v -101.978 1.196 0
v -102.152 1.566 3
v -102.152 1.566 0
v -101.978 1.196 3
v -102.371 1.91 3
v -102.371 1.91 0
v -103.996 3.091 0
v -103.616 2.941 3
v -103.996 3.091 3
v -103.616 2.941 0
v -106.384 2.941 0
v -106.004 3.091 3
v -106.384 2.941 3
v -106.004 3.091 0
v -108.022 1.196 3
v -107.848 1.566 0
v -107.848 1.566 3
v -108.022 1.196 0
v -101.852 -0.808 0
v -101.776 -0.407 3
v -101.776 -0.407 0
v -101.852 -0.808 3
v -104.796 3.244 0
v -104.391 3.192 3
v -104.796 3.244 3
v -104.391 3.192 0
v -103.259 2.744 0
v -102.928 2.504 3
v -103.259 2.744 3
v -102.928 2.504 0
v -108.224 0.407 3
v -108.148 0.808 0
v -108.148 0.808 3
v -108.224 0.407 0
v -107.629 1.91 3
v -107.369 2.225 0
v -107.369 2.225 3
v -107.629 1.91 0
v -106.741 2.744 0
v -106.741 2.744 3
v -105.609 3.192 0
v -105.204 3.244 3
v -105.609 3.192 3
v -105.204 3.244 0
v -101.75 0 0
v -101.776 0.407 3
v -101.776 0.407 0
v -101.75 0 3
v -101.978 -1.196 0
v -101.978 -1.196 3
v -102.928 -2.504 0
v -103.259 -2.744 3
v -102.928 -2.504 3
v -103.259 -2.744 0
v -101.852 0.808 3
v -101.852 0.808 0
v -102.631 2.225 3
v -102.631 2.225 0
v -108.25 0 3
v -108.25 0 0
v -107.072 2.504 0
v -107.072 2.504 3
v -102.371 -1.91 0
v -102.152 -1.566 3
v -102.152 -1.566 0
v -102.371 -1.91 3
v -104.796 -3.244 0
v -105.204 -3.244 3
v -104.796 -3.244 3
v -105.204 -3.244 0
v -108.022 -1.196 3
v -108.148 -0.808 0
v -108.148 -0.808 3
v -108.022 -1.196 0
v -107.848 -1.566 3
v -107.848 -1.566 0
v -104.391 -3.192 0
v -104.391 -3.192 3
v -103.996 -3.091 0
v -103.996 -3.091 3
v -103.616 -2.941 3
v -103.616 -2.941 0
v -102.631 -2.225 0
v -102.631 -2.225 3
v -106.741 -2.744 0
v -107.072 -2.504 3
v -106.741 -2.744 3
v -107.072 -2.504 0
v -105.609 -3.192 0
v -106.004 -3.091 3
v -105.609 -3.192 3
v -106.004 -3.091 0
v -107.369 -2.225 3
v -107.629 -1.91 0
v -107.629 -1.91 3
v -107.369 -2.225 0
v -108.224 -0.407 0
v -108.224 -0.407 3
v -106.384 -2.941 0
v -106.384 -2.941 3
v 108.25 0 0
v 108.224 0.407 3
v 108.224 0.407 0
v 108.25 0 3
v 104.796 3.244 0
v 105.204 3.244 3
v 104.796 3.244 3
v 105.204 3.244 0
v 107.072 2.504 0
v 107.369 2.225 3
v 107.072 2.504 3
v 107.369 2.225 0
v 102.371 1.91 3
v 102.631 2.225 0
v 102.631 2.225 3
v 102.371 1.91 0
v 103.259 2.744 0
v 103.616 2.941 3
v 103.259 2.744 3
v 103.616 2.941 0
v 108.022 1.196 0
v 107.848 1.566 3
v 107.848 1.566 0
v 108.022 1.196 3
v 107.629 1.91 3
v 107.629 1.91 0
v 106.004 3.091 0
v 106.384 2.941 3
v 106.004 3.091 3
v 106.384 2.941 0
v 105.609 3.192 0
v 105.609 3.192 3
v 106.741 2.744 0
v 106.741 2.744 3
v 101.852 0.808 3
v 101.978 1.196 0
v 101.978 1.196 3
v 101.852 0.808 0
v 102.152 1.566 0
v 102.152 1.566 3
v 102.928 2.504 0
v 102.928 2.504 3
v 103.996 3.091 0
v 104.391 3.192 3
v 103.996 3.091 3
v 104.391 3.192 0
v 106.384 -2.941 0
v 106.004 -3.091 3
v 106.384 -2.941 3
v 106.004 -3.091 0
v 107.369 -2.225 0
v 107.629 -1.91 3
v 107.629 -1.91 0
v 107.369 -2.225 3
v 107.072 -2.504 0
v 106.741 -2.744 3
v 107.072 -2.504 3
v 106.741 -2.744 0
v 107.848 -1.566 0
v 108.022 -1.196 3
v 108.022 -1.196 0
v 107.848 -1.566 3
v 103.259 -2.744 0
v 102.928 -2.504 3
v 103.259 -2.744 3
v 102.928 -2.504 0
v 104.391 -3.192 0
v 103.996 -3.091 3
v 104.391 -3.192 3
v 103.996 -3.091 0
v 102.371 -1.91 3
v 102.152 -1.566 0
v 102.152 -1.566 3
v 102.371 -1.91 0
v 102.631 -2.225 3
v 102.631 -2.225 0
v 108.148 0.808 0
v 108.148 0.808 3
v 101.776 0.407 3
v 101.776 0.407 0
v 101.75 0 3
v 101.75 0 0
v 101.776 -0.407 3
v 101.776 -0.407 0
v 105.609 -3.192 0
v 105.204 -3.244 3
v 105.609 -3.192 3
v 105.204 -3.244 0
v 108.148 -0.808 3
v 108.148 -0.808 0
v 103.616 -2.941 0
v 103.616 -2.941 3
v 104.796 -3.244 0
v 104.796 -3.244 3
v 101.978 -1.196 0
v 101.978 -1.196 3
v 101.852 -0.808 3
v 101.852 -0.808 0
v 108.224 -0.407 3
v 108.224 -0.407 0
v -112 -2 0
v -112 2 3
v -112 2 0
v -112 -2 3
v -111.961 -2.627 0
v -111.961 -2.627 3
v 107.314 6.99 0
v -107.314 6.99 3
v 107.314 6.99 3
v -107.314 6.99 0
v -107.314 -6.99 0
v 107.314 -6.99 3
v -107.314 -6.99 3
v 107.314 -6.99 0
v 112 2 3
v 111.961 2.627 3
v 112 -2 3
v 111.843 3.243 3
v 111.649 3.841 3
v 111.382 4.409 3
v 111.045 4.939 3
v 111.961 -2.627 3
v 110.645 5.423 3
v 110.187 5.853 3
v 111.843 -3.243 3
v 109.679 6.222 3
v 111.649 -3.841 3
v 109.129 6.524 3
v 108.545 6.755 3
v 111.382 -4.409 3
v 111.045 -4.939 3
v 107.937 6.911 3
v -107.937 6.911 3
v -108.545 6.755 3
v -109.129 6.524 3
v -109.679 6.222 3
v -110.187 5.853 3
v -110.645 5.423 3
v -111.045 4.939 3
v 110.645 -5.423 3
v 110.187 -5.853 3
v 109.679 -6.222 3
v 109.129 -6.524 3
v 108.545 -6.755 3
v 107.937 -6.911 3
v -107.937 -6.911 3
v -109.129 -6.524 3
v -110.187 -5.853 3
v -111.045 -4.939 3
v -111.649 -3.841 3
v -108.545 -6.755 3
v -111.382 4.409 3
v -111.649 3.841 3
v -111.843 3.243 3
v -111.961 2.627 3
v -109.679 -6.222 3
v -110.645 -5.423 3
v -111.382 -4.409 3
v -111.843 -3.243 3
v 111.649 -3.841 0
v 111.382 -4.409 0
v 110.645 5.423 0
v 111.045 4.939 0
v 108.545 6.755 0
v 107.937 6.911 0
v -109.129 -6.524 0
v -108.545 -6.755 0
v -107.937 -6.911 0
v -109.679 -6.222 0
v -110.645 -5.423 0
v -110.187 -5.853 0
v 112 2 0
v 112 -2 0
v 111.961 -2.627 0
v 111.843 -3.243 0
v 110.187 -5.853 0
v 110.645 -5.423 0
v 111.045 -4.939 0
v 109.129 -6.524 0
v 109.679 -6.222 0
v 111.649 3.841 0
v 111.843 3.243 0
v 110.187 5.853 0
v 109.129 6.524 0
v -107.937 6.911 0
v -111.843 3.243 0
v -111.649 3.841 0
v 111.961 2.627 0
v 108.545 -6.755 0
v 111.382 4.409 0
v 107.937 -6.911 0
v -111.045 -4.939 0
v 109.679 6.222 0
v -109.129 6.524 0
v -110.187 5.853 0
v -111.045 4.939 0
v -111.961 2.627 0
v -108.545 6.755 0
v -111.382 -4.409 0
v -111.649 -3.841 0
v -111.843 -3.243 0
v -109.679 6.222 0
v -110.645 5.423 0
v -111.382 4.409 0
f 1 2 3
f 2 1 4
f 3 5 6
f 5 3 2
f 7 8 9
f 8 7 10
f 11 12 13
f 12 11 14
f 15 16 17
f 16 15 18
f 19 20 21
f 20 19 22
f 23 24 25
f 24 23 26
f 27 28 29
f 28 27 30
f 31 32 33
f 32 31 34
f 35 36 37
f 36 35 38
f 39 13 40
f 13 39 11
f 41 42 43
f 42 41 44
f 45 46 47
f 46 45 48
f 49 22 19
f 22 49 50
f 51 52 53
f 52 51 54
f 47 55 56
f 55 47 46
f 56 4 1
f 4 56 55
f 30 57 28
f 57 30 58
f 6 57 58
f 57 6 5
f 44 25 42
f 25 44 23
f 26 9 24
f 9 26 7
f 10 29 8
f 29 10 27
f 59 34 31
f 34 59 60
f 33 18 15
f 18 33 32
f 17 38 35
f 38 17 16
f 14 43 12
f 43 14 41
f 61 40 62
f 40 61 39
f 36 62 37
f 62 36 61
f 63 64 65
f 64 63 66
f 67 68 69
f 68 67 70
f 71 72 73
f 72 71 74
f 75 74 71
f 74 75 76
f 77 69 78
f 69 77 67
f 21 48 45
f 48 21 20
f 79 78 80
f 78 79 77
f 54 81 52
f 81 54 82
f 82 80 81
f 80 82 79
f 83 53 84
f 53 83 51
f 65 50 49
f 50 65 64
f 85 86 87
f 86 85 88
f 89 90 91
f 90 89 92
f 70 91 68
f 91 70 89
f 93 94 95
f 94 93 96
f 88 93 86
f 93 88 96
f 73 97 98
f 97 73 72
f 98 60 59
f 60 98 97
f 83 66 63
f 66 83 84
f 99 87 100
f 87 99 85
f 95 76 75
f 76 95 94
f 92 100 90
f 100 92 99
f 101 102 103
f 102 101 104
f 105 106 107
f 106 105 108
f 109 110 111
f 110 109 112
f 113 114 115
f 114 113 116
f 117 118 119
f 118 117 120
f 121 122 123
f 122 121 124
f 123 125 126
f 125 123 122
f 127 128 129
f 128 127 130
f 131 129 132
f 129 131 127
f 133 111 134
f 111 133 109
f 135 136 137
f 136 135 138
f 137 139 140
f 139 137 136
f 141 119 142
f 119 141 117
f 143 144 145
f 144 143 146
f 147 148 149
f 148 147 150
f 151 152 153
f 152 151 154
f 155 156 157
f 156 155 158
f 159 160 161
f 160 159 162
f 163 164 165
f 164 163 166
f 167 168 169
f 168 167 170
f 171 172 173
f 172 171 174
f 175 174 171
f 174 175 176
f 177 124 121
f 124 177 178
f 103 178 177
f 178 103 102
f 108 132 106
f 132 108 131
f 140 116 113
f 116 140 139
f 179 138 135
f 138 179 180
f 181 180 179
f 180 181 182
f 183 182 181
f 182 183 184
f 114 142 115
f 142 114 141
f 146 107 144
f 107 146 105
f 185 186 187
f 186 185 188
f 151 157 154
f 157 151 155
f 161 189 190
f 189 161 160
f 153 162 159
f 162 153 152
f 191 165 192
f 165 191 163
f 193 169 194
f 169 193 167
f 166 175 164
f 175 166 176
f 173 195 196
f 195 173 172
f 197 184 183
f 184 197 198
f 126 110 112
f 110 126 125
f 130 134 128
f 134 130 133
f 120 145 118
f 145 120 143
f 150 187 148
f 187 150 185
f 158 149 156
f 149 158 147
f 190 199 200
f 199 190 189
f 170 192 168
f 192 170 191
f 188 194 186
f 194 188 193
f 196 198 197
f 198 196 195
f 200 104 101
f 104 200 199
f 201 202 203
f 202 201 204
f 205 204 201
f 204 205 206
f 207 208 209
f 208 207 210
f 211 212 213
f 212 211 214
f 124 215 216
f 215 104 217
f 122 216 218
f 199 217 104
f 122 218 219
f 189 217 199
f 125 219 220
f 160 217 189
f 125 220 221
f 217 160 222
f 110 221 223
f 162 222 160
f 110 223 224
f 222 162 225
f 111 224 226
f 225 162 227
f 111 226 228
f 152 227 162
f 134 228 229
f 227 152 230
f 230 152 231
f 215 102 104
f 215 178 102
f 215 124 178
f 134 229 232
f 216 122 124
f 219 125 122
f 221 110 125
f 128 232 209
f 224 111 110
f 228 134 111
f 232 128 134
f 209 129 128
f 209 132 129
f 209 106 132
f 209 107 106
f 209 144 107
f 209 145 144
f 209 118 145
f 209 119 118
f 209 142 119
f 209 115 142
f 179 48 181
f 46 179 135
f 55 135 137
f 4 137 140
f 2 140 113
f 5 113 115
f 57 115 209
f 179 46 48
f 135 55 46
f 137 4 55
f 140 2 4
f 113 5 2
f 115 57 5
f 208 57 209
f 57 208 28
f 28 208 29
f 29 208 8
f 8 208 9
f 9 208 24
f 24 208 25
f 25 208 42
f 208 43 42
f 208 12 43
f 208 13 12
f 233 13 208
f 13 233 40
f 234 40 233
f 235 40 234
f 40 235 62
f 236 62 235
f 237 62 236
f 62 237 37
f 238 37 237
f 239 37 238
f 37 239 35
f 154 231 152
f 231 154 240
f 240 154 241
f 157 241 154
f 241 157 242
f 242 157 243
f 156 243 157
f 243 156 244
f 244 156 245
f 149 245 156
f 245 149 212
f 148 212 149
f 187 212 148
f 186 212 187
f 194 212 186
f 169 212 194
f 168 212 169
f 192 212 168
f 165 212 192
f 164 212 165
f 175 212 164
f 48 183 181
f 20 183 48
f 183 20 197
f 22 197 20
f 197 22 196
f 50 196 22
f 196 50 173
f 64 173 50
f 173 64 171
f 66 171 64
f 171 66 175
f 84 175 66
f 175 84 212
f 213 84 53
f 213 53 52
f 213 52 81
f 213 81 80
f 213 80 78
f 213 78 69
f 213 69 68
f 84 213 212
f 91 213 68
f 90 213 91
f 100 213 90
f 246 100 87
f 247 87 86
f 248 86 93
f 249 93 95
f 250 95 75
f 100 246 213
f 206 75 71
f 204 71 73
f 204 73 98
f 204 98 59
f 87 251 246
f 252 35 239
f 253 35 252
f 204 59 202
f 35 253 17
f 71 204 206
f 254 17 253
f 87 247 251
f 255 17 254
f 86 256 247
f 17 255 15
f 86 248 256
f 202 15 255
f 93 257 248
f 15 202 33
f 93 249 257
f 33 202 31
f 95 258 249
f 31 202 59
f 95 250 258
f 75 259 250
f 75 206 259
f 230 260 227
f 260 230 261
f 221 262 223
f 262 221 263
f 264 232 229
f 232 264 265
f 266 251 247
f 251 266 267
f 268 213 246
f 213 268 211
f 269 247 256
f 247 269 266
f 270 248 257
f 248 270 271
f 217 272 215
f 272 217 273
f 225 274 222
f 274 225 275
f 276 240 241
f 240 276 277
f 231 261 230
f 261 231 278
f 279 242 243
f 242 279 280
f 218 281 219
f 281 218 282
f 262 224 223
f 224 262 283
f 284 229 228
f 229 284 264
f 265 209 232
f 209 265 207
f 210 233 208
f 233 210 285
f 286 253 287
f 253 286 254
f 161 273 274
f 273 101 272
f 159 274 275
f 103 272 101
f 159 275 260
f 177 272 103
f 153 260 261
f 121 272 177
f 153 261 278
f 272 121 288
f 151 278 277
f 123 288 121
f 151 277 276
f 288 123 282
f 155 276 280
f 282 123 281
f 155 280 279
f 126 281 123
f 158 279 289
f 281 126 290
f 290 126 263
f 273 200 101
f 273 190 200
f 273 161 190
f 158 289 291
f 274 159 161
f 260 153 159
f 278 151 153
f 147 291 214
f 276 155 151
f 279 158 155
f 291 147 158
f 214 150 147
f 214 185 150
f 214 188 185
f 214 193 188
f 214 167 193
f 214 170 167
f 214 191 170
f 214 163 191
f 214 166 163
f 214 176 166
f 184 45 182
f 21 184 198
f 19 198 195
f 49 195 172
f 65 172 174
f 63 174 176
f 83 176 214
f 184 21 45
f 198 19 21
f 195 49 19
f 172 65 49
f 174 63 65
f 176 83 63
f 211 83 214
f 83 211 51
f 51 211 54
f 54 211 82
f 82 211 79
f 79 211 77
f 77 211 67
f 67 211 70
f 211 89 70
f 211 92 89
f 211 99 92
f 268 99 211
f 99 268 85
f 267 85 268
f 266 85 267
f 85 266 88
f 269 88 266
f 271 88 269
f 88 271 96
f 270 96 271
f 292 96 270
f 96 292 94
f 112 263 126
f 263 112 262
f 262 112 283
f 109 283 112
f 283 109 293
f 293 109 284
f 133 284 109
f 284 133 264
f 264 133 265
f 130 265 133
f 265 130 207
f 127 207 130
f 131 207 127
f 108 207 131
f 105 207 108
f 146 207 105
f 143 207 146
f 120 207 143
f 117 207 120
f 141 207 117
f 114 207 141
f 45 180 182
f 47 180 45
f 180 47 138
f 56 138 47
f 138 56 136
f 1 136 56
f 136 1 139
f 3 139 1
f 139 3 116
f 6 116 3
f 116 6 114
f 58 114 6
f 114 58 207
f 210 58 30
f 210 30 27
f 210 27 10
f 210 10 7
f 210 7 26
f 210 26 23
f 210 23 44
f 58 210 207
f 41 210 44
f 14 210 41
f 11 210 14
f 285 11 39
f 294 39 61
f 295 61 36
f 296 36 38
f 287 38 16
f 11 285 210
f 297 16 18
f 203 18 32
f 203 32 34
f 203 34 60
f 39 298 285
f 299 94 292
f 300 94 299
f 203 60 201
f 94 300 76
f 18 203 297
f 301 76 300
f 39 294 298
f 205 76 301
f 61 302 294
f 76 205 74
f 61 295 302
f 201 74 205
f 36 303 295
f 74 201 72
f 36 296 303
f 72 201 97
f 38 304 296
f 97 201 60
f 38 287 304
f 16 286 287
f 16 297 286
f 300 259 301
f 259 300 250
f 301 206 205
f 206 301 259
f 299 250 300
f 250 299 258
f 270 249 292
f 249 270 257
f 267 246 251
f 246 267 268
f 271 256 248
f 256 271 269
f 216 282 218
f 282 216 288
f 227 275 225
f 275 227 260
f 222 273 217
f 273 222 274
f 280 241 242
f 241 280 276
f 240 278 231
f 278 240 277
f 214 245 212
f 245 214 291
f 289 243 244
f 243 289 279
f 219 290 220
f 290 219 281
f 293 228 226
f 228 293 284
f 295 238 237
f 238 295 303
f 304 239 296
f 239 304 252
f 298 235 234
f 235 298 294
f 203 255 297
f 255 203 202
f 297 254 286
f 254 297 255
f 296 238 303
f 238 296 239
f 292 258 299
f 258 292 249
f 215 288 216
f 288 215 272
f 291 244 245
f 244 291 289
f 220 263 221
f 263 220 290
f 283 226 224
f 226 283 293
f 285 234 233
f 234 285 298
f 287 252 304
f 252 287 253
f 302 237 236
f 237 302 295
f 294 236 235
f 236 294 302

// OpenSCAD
$fn = 50;


difference() {
	union() {
		hull() {
			translate(v = [-107.0000000000, 2.0000000000, 0]) {
				cylinder(h = 3, r = 5);
			}
			translate(v = [107.0000000000, 2.0000000000, 0]) {
				cylinder(h = 3, r = 5);
			}
			translate(v = [-107.0000000000, -2.0000000000, 0]) {
				cylinder(h = 3, r = 5);
			}
			translate(v = [107.0000000000, -2.0000000000, 0]) {
				cylinder(h = 3, r = 5);
			}
		}
	}
	union() {
		translate(v = [-105.0000000000, 0.0000000000, -100.0000000000]) {
			cylinder(h = 200, r = 3.2500000000);
		}
		translate(v = [-105.0000000000, 0.0000000000, -100.0000000000]) {
			cylinder(h = 200, r = 3.2500000000);
		}
		translate(v = [105.0000000000, 0.0000000000, -100.0000000000]) {
			cylinder(h = 200, r = 3.2500000000);
		}
		translate(v = [105.0000000000, 0.0000000000, -100.0000000000]) {
			cylinder(h = 200, r = 3.2500000000);
		}
	}
}
